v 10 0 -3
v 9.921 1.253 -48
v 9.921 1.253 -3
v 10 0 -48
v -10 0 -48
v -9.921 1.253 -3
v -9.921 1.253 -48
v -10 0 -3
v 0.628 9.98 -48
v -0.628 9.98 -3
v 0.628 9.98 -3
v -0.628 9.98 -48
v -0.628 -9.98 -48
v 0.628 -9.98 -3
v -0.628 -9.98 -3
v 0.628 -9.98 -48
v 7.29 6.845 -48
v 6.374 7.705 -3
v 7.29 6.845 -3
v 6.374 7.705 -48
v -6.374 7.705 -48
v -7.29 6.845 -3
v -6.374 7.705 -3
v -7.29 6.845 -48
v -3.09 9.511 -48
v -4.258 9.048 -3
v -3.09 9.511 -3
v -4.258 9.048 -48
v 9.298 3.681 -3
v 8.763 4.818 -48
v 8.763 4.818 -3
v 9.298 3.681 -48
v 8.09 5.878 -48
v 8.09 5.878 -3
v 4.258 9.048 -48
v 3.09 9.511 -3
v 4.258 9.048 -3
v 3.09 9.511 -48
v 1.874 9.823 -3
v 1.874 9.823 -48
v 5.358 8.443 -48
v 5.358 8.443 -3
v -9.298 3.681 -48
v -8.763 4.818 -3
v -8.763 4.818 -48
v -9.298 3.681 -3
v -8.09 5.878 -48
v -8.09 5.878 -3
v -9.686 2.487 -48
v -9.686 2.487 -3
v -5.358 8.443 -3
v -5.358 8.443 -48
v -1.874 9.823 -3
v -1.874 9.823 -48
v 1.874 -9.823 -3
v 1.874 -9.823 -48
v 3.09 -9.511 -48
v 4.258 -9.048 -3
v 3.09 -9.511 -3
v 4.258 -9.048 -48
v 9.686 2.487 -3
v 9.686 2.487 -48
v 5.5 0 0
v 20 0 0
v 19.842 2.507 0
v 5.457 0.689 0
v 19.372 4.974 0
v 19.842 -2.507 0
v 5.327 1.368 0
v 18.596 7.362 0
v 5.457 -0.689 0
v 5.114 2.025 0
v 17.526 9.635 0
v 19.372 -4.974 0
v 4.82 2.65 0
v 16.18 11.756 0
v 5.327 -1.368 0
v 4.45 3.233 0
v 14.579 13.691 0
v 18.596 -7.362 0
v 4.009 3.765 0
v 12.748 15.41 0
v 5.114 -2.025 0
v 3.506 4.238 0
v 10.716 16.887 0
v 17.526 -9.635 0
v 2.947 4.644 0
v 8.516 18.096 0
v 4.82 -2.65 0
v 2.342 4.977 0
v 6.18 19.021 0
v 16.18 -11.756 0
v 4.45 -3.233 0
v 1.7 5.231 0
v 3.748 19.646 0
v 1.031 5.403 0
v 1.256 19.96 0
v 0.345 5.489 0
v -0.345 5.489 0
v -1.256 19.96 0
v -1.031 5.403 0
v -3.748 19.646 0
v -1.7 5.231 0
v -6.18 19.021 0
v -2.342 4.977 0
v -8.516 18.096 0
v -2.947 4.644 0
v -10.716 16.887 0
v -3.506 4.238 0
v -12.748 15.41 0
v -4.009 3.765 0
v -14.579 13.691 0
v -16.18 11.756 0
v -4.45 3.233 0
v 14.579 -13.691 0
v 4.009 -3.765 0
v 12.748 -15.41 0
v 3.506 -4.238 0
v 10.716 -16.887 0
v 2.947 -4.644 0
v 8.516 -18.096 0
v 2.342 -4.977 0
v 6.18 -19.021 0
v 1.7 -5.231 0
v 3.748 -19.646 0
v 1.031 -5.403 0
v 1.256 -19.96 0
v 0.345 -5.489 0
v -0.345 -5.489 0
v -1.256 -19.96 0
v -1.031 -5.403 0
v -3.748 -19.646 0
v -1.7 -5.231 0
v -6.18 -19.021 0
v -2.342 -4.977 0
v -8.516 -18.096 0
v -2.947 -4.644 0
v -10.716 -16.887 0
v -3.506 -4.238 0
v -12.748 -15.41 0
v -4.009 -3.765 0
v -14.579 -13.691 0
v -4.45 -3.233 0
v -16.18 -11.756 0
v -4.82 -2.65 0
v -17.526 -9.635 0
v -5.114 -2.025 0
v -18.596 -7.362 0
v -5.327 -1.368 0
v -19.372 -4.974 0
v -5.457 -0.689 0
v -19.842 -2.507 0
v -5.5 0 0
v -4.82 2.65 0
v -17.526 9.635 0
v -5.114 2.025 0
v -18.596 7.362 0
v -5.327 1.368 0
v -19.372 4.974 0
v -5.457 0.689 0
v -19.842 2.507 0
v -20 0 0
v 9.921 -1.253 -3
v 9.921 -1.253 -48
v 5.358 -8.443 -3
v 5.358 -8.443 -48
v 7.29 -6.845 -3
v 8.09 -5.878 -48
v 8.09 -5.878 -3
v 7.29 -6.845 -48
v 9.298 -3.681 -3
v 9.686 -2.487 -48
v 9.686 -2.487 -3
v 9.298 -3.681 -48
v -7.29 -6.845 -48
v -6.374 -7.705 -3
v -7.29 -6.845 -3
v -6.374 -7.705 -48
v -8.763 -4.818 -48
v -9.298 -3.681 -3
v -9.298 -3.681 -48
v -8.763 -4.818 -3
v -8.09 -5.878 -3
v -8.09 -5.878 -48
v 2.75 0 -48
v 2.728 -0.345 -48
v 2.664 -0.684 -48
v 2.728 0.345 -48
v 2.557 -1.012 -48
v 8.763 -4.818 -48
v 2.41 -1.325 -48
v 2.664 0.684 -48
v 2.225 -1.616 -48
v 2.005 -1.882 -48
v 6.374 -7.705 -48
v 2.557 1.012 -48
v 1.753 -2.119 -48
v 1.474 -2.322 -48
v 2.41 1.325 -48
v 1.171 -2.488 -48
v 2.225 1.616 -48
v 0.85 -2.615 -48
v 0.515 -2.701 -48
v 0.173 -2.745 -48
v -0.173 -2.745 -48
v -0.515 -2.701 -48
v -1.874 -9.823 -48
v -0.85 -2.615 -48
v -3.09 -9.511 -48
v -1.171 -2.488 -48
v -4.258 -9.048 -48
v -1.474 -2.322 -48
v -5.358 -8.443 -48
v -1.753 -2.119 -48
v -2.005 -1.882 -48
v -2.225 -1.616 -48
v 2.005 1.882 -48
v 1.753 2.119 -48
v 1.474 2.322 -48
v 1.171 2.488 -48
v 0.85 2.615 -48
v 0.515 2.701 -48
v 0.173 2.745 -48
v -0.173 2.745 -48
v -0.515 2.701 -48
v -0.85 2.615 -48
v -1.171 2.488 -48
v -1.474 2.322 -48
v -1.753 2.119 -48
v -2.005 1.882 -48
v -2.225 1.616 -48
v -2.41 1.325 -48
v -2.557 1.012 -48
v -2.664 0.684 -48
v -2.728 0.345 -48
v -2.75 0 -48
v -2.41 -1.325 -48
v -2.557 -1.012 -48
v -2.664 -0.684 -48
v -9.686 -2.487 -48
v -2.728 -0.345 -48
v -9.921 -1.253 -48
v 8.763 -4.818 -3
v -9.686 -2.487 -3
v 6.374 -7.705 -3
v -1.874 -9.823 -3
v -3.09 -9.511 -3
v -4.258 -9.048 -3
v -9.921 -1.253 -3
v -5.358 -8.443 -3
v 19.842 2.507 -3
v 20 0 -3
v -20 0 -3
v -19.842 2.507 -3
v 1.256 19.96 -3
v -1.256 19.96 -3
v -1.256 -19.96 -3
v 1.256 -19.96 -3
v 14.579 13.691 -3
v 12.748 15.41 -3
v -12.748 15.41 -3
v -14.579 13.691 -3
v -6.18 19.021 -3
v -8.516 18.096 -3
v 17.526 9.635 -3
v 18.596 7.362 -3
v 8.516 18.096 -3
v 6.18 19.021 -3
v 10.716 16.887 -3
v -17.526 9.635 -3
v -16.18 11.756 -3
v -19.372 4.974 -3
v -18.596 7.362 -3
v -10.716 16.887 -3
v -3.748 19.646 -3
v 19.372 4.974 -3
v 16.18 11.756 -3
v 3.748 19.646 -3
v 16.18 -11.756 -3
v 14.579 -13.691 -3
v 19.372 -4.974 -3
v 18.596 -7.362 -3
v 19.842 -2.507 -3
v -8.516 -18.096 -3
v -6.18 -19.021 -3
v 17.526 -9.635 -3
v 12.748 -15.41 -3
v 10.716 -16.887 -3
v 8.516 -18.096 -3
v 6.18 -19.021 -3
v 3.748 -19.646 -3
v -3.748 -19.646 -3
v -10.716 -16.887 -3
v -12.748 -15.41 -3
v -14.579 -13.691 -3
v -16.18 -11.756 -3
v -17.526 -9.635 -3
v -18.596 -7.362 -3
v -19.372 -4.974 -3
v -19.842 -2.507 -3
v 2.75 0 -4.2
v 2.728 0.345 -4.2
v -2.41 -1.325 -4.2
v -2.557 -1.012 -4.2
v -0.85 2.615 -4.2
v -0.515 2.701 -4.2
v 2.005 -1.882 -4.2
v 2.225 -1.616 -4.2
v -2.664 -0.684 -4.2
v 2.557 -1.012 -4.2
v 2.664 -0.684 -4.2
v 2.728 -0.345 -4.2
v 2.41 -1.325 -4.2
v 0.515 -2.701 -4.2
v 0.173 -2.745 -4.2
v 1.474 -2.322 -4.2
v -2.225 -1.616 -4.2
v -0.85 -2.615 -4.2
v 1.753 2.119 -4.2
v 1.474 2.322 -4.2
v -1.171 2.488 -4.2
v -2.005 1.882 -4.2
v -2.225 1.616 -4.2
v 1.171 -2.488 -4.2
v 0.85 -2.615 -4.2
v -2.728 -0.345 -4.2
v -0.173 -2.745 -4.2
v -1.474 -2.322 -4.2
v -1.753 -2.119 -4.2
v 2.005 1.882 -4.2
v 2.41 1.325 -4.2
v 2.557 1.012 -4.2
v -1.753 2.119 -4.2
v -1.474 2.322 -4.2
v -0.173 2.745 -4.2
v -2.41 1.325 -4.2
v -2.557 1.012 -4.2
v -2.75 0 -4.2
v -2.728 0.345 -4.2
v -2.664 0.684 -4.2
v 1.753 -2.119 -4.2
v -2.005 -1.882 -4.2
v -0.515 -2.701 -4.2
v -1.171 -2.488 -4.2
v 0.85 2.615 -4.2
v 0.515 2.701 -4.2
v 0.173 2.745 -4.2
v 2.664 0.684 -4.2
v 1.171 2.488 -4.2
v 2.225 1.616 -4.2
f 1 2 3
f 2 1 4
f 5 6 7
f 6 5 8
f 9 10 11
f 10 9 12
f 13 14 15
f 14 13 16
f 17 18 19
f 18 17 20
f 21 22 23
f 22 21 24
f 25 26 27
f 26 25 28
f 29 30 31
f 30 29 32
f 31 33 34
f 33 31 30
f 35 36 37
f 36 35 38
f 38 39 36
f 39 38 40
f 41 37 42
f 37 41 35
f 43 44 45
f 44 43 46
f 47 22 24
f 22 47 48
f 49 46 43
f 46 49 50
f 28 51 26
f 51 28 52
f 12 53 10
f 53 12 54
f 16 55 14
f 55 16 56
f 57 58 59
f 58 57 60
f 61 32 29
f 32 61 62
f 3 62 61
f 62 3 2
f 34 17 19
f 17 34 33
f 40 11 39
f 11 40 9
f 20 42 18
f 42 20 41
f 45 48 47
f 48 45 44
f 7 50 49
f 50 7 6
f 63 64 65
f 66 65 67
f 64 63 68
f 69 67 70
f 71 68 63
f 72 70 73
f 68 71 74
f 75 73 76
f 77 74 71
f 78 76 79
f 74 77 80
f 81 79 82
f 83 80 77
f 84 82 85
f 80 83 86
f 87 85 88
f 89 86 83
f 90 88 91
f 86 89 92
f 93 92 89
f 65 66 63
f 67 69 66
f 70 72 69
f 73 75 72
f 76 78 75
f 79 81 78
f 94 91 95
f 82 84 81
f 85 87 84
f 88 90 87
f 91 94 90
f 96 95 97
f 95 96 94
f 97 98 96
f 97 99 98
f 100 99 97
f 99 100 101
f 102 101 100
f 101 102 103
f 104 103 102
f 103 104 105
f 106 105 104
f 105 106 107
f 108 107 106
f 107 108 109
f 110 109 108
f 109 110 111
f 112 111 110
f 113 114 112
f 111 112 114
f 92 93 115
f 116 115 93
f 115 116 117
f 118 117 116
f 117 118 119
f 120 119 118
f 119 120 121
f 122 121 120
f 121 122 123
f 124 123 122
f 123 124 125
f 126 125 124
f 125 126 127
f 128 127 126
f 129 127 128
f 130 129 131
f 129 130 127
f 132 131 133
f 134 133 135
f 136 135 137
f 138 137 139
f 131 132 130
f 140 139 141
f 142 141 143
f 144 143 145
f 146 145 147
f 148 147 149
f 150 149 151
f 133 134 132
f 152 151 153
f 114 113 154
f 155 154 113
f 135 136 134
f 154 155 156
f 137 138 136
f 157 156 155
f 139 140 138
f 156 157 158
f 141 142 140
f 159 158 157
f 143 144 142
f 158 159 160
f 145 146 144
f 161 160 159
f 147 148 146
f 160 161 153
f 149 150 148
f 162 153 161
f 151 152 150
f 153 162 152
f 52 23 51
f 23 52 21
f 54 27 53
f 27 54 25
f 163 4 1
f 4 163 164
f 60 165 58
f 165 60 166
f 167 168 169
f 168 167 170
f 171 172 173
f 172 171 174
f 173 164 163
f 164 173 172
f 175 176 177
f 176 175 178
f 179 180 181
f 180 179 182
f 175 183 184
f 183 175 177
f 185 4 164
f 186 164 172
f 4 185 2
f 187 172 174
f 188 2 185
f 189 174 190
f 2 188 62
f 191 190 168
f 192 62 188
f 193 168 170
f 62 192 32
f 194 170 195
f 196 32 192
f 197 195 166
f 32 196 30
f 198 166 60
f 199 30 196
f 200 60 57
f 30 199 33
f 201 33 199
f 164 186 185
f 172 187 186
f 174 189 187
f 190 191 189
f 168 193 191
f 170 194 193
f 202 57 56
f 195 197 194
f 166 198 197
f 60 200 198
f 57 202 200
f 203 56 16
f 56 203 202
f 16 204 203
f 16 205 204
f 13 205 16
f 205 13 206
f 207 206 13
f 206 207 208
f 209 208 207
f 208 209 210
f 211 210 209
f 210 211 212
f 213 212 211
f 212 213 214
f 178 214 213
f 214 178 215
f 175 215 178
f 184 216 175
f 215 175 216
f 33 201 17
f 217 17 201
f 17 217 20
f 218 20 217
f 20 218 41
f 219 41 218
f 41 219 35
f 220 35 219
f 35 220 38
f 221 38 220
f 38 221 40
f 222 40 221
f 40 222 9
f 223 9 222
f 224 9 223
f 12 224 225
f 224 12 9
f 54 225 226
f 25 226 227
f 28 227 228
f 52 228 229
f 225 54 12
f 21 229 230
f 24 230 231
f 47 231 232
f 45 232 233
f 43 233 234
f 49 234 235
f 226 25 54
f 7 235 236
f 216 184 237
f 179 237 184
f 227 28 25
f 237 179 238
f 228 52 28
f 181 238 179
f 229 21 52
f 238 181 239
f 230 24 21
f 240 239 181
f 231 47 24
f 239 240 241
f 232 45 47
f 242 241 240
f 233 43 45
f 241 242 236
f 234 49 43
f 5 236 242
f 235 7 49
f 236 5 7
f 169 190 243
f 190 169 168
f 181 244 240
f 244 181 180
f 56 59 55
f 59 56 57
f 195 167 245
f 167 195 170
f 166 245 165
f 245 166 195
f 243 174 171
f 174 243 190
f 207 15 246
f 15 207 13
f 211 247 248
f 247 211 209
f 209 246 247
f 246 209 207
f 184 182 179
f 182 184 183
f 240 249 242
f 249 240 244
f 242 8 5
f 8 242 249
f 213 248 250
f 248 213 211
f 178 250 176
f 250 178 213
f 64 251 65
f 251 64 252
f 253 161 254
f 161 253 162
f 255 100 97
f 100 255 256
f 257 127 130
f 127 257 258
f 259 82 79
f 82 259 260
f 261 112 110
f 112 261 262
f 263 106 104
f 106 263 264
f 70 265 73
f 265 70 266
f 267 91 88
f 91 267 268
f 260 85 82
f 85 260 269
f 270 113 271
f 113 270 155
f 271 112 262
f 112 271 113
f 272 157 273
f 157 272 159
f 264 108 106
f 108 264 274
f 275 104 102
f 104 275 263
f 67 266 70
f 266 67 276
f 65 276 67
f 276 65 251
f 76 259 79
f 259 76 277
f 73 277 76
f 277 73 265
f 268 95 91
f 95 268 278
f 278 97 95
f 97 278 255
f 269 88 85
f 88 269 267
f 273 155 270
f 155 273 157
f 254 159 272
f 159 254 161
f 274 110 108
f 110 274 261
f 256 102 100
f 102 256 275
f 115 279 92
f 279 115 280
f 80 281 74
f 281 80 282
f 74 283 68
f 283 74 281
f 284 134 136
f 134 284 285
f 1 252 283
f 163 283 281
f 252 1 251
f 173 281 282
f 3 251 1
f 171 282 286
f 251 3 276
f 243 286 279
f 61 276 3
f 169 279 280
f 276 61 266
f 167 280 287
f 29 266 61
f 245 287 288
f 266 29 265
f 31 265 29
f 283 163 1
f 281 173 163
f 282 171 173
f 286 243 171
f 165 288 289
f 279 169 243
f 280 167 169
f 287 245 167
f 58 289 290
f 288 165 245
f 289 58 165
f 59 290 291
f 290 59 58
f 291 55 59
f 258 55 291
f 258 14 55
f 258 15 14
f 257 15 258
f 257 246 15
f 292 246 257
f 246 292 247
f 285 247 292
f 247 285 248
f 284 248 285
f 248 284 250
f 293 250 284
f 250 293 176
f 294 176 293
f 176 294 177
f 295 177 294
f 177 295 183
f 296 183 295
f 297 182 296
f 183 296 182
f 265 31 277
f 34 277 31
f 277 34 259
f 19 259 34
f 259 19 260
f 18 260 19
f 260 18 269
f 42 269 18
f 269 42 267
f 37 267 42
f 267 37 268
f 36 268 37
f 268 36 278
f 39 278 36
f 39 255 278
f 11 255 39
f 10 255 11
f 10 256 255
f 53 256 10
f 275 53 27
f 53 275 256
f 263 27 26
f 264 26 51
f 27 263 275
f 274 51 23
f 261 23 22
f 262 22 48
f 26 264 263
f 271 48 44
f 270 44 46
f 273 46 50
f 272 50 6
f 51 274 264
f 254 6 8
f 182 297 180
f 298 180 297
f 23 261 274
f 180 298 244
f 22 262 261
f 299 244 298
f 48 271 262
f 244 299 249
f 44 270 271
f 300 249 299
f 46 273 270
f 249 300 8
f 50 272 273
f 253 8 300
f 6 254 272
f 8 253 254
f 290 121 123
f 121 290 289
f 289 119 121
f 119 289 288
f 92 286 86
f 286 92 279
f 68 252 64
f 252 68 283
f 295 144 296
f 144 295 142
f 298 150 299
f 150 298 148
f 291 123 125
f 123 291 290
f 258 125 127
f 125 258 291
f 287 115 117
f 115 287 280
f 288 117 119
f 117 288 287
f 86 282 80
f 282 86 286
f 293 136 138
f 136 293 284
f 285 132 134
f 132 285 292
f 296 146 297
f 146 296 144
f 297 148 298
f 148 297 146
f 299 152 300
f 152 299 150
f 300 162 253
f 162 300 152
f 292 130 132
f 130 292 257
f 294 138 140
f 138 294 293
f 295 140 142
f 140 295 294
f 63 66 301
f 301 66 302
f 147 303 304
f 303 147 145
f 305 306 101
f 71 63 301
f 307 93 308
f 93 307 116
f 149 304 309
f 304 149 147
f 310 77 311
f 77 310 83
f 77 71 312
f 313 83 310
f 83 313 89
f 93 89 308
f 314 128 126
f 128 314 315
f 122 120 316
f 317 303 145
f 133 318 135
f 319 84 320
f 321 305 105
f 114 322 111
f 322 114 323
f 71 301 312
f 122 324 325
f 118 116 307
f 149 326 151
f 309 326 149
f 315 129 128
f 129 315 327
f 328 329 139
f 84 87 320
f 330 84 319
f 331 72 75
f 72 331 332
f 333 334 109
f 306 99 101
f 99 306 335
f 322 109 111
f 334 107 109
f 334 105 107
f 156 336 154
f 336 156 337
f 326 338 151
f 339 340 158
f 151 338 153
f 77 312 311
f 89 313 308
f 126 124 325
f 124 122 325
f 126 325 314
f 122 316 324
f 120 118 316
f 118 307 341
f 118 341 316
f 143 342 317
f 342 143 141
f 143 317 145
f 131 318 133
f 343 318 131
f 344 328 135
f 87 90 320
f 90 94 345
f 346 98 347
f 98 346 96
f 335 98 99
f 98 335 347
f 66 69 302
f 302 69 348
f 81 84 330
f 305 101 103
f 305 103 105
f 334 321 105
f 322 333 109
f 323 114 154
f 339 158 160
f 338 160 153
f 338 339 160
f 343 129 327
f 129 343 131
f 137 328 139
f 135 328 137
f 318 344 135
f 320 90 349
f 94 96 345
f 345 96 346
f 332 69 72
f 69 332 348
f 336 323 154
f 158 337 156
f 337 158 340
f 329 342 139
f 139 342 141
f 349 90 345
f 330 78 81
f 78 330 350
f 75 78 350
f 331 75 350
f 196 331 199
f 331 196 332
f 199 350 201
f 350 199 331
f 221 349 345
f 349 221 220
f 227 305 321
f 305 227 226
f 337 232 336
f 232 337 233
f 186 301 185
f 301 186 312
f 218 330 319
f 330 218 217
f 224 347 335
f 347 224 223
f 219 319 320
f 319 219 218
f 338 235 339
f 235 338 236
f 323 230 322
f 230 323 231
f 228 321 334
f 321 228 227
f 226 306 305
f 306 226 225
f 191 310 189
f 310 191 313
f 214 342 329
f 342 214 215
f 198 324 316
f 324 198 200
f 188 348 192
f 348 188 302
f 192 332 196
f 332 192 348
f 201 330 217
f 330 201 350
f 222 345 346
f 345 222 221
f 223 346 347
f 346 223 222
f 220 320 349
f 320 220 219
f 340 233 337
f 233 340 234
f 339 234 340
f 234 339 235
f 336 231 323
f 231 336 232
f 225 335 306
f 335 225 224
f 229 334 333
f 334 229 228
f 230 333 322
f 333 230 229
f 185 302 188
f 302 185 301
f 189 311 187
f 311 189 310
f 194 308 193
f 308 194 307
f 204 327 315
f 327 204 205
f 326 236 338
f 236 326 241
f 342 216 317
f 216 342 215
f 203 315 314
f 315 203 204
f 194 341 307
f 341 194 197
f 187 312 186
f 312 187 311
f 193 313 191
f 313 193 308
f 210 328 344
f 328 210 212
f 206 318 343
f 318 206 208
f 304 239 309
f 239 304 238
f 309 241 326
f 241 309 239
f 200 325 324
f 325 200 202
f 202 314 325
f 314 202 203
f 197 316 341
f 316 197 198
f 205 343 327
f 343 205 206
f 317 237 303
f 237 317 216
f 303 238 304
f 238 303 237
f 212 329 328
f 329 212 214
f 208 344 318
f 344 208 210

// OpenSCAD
$fn = 50;


difference() {
	union() {
		translate(v = [0, 0, -48.0000000000]) {
			cylinder(h = 48, r = 10.0000000000);
		}
		translate(v = [0, 0, -3.0000000000]) {
			cylinder(h = 3, r = 20.0000000000);
		}
	}
	union() {
		translate(v = [0, 0, 0]) {
			rotate(a = [0, 0, 0]) {
				difference() {
					union() {
						#translate(v = [0, 0, -48.0000000000]) {
							cylinder(h = 48, r = 2.2500000000);
						}
						#translate(v = [0, 0, -4.2000000000]) {
							cylinder(h = 4.2000000000, r = 10.0000000000, r1 = 2.7500000000, r2 = 5.5000000000);
						}
						#translate(v = [0, 0, -48.0000000000]) {
							cylinder(h = 48, r = 2.7500000000);
						}
						#translate(v = [0, 0, -48.0000000000]) {
							cylinder(h = 48, r = 2.2500000000);
						}
					}
					union();
				}
			}
		}
	}
}
